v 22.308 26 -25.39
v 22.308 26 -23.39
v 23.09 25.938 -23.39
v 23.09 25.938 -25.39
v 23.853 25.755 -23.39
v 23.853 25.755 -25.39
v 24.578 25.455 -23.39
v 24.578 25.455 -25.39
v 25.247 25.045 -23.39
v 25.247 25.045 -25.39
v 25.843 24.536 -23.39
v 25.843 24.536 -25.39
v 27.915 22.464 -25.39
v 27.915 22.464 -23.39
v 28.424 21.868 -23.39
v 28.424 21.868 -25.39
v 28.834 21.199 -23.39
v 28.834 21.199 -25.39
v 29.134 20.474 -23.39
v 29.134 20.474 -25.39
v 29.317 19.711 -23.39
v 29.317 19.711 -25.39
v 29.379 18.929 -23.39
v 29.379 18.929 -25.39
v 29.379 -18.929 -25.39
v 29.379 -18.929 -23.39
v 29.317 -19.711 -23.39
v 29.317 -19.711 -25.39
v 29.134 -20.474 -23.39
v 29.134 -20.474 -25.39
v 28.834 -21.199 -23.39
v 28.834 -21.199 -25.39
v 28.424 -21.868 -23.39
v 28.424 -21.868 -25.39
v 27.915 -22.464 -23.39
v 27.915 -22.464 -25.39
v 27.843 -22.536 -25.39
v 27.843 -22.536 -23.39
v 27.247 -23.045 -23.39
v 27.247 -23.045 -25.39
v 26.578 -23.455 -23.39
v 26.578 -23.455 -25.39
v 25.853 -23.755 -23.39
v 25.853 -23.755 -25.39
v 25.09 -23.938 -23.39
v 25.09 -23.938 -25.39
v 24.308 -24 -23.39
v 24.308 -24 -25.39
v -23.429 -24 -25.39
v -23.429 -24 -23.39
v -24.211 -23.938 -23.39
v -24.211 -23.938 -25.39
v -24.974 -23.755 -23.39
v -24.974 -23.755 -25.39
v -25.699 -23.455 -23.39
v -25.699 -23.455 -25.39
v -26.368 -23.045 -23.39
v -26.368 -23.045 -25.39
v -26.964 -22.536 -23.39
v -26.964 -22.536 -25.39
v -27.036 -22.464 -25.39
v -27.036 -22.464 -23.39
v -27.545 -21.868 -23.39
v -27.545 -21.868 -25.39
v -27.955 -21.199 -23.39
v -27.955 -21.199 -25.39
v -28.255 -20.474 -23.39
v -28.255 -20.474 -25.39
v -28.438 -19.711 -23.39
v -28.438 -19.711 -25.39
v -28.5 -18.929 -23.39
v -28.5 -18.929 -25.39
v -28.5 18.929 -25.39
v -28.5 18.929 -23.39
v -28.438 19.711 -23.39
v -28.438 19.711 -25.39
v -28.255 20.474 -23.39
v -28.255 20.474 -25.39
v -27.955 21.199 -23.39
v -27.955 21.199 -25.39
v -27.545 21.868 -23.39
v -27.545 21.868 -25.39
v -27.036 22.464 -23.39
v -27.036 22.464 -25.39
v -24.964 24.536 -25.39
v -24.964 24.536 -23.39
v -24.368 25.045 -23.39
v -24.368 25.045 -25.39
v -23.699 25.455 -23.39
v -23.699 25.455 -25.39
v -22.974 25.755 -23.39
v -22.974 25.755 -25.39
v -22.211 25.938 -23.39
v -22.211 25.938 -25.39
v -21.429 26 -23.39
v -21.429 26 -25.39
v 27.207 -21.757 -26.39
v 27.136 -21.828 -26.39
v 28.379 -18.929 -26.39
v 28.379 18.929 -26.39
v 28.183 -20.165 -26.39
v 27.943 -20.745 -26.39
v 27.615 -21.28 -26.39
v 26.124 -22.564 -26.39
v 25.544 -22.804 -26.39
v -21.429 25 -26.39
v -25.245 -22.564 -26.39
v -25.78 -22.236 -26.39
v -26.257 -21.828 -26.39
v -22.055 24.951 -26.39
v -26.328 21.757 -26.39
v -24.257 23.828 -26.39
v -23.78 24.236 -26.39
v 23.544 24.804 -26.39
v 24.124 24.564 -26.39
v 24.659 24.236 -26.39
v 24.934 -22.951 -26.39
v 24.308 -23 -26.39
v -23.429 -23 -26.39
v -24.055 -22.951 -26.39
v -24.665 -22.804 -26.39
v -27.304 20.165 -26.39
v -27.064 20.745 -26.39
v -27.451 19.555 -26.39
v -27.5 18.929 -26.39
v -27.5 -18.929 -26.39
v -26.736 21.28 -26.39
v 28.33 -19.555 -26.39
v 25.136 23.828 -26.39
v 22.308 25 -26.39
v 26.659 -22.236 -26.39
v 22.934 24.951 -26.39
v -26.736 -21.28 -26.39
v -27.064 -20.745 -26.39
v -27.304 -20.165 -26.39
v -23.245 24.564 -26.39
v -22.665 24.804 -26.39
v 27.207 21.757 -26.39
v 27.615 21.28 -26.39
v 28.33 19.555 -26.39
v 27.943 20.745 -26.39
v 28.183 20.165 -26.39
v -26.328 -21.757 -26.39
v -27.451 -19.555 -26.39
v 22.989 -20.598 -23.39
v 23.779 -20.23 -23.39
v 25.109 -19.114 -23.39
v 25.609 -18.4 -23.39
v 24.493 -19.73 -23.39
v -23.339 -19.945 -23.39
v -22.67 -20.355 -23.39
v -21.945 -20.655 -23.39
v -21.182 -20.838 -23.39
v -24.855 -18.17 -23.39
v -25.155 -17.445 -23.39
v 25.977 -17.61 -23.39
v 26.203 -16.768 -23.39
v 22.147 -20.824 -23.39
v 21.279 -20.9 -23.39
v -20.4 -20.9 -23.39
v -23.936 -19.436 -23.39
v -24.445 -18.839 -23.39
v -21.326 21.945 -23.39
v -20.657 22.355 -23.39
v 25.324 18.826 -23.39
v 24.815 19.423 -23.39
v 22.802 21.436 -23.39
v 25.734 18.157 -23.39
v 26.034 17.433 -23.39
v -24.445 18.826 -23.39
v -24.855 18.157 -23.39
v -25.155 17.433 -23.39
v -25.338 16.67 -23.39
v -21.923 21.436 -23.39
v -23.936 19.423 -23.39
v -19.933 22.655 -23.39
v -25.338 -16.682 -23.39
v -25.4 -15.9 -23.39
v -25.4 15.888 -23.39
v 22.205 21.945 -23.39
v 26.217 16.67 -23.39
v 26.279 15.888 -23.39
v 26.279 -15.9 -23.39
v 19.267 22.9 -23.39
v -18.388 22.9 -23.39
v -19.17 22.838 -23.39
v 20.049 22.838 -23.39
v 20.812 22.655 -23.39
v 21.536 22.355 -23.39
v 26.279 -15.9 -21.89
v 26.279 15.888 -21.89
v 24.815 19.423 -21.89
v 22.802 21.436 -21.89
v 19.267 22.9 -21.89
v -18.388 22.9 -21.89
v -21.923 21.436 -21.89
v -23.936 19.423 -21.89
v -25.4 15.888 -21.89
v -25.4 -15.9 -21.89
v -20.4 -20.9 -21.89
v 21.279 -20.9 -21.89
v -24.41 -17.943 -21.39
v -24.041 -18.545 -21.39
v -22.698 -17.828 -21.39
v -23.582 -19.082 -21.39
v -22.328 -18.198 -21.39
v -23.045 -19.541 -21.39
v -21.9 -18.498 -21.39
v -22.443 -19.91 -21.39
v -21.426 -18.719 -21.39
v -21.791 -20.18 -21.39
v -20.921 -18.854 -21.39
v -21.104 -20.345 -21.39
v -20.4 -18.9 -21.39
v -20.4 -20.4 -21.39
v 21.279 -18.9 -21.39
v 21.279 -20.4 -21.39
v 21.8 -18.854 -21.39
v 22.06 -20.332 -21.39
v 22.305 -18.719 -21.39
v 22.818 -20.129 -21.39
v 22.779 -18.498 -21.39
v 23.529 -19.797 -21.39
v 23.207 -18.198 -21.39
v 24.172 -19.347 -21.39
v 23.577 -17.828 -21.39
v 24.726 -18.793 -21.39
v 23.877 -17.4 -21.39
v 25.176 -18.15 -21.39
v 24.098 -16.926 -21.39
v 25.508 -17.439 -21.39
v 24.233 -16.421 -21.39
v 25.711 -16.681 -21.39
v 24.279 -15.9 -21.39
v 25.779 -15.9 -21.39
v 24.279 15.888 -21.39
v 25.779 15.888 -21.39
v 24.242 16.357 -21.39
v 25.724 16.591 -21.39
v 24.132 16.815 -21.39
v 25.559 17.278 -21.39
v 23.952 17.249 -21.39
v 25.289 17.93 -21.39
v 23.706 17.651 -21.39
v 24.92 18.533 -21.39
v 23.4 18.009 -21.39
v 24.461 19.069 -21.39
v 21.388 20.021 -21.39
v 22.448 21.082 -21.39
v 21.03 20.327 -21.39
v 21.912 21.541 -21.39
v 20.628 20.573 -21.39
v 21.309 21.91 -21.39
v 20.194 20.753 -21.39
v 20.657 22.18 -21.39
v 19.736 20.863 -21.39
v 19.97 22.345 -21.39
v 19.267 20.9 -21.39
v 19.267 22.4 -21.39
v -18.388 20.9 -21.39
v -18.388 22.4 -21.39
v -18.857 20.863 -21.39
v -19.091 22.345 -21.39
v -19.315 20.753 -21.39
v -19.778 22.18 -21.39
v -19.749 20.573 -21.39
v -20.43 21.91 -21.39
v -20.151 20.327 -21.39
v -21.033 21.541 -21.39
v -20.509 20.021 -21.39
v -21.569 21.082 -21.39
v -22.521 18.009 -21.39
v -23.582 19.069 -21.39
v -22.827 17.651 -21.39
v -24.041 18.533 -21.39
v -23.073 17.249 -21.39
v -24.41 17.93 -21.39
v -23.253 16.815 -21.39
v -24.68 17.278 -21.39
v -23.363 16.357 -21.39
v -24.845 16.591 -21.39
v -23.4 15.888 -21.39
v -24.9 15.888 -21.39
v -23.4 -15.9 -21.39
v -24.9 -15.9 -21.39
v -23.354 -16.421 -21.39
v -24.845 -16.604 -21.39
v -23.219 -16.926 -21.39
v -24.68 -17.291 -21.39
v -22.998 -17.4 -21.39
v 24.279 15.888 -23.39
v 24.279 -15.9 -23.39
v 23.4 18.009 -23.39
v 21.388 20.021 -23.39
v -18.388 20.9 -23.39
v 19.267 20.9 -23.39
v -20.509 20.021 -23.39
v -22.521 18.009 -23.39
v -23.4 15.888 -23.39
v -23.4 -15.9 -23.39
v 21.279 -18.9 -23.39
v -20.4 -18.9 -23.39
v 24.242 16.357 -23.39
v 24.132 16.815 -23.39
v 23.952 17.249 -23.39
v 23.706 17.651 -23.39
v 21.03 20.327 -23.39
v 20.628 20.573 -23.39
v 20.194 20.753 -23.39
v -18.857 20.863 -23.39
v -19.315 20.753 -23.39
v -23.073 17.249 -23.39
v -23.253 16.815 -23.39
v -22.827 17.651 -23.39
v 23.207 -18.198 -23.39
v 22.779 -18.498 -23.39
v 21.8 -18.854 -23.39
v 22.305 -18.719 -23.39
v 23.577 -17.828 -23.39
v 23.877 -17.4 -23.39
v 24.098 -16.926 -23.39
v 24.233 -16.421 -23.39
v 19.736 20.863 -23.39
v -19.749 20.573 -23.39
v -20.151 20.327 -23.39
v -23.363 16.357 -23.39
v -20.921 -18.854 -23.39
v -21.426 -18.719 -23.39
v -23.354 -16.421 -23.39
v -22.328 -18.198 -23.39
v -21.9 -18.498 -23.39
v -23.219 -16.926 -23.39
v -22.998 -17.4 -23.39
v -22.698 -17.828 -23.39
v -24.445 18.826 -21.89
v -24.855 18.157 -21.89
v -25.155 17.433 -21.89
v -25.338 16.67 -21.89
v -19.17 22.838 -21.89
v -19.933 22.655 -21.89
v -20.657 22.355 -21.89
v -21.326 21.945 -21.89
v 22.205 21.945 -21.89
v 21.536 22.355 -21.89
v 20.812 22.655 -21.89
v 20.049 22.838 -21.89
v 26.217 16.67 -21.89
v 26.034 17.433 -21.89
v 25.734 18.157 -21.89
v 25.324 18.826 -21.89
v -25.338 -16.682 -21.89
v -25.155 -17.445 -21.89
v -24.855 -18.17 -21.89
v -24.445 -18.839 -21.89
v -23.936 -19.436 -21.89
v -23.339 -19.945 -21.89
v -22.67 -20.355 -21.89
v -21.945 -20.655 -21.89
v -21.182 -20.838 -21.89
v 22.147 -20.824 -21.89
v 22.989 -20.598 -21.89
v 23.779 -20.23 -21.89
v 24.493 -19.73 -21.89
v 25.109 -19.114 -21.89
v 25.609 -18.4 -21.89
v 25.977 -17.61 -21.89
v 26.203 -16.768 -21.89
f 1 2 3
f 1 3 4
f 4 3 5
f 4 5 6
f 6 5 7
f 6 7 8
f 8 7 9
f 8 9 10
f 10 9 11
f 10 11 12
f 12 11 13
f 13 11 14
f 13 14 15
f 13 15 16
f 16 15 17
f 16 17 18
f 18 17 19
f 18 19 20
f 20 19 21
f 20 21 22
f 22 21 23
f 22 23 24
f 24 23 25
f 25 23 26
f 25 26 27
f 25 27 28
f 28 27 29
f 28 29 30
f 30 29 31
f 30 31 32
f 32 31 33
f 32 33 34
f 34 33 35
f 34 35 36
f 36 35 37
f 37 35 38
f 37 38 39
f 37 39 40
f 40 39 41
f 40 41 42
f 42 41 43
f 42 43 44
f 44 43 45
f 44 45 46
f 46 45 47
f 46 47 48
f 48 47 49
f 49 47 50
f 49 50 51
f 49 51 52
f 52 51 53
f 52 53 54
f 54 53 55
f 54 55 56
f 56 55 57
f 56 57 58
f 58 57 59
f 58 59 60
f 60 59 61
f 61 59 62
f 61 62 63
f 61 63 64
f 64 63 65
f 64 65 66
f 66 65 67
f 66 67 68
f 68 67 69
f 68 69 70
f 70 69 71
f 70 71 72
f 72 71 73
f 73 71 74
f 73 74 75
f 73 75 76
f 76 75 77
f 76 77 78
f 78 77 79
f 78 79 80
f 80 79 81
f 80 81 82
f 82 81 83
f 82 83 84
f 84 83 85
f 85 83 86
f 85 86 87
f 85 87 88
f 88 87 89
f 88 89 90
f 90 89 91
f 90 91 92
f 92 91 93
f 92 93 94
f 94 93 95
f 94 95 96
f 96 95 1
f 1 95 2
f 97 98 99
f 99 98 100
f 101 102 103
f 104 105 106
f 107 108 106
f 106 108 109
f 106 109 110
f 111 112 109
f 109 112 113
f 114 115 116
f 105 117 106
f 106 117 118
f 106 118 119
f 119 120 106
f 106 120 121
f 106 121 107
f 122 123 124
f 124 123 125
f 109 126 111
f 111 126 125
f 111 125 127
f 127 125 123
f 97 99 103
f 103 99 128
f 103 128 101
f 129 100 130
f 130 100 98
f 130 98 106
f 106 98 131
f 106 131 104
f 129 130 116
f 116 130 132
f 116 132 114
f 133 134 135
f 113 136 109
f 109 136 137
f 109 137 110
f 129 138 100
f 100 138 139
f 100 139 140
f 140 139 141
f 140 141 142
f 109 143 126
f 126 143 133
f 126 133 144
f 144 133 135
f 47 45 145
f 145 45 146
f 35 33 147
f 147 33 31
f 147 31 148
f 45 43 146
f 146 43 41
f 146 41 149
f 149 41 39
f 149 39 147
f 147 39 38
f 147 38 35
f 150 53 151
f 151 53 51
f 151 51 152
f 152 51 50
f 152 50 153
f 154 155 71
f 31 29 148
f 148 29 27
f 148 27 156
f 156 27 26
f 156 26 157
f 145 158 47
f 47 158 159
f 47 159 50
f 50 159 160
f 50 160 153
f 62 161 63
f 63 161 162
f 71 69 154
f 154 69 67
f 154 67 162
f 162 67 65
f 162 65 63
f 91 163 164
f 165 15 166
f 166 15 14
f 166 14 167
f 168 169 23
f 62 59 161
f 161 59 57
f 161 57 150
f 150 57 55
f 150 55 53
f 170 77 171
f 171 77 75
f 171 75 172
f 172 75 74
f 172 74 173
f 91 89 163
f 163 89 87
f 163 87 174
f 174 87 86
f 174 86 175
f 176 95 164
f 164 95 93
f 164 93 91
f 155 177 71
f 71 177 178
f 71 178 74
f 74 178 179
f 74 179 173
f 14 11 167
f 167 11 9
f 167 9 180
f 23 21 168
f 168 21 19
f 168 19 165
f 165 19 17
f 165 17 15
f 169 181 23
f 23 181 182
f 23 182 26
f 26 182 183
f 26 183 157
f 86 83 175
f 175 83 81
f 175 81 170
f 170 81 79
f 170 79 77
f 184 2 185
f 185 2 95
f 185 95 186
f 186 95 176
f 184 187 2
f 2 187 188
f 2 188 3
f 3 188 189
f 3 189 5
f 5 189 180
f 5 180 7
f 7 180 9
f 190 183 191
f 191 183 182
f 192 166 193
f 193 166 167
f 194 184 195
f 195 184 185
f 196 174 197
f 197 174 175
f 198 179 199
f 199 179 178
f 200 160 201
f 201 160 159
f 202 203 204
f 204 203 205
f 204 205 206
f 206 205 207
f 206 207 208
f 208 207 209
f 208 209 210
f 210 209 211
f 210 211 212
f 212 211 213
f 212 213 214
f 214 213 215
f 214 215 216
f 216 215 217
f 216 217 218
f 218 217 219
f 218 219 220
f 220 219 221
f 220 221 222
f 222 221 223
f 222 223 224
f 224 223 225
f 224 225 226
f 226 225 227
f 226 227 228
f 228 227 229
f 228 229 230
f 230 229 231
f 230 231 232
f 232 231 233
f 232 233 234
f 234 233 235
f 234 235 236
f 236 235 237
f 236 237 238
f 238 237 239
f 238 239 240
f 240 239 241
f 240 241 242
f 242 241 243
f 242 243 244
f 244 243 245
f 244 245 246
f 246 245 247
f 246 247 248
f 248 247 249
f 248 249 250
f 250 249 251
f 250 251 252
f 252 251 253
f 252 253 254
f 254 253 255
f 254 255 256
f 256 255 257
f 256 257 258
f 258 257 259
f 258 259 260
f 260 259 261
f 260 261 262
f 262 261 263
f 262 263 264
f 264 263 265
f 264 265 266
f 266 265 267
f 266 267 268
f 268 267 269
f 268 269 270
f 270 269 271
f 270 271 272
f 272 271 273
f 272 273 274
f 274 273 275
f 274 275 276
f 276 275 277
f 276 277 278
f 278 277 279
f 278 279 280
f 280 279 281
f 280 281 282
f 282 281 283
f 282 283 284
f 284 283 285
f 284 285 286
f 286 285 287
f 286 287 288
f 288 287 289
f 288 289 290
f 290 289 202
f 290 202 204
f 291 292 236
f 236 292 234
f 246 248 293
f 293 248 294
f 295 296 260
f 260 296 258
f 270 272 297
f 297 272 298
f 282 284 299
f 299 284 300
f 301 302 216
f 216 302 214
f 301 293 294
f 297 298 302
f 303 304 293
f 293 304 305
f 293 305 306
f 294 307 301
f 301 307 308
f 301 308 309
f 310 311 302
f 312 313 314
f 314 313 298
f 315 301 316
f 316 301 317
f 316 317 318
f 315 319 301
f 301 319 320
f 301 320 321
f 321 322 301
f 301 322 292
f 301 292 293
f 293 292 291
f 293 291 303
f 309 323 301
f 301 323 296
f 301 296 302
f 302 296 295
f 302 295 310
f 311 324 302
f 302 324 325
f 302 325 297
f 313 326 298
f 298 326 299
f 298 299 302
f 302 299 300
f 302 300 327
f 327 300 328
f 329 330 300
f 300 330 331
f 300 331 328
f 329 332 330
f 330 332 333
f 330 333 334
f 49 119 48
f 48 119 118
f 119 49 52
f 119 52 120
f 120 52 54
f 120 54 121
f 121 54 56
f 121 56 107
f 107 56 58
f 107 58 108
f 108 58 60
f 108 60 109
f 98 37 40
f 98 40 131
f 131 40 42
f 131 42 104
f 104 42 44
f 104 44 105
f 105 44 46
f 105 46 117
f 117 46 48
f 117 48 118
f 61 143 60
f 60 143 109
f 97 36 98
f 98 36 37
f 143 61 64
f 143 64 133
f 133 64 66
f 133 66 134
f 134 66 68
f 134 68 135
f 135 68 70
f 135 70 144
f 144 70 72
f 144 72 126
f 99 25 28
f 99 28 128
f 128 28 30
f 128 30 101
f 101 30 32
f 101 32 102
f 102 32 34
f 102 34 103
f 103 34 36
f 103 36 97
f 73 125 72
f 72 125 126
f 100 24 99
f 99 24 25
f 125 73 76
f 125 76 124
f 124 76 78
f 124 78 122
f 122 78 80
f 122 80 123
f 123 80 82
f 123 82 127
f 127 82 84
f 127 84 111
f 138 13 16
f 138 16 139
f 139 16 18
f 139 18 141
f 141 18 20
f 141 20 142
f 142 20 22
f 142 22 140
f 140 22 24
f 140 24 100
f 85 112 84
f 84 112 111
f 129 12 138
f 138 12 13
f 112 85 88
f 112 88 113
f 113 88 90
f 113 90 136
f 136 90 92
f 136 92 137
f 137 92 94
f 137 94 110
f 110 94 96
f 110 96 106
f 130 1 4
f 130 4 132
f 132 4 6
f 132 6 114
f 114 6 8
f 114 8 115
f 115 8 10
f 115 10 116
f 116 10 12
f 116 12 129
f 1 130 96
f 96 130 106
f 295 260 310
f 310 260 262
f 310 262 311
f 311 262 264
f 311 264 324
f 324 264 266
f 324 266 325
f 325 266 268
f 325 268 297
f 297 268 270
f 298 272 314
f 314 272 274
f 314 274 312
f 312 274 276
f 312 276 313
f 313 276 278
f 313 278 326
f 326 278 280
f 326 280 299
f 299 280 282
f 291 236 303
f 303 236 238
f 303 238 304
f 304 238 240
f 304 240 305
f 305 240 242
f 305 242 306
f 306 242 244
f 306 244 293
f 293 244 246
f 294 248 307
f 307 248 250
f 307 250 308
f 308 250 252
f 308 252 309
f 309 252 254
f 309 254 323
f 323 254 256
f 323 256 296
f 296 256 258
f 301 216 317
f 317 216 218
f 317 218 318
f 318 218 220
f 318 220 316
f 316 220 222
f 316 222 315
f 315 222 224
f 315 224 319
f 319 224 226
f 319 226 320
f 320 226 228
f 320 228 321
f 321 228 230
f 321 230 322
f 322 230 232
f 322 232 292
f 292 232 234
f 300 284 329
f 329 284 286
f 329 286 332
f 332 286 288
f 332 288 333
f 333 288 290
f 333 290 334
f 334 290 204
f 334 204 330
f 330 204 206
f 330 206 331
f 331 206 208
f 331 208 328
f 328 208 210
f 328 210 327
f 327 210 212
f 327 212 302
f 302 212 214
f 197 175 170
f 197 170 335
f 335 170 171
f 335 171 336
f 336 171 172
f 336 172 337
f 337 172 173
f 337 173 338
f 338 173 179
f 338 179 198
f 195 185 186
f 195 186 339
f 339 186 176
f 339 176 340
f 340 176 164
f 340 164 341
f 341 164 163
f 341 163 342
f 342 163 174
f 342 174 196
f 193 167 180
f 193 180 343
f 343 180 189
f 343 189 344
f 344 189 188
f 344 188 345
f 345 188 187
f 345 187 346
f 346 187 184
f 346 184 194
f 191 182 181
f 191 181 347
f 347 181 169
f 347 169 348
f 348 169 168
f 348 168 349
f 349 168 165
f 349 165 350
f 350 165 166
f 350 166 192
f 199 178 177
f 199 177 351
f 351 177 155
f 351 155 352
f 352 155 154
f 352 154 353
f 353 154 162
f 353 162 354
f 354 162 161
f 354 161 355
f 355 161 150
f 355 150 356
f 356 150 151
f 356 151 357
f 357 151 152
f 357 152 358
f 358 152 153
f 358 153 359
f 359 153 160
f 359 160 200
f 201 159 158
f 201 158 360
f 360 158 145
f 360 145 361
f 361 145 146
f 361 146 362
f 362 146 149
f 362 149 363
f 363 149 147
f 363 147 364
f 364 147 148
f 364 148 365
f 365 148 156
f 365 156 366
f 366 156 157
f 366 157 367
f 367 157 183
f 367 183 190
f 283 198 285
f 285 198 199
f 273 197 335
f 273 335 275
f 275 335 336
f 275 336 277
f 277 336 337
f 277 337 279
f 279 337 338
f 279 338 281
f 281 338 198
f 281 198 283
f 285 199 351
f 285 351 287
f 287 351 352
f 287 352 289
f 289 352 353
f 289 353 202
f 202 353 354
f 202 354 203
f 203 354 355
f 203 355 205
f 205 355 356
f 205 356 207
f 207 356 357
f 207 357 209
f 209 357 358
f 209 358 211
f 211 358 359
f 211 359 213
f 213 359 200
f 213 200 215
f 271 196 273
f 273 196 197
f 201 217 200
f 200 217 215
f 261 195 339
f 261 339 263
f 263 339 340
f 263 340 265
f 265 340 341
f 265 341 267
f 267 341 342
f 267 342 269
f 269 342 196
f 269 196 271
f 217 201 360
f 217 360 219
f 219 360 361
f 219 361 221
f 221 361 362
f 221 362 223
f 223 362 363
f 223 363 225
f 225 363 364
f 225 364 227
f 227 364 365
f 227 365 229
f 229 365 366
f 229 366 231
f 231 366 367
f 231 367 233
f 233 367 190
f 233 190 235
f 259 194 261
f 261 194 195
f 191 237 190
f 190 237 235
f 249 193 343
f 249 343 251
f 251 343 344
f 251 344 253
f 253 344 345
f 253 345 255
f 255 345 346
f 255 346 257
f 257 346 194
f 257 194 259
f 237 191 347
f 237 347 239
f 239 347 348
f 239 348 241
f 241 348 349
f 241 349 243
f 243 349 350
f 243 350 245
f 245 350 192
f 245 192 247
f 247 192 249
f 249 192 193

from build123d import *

# Parameters (mm, degrees)
BOSS_EXTRUDE1_DEPTH = 3
BOSS_EXTRUDE2_DEPTH = 2
CHAMFER1_SIZE       = 1
FILLET1_R           = 3
FILLET2_R           = 5
CHAMFER2_SIZE       = 0.5


with BuildPart() as part:
    # Sketch2 → Boss-Extrude1 (new body)
    with BuildSketch(Plane(origin=(0, 0, -23.390463949), x_dir=(-1, 0, 0), z_dir=(0, 0, -1))):
        with BuildLine():
            Line((21.428932188, 26), (-22.307932188, 26))
            ThreePointArc((-22.307932188, 26), (-24.22134935, 25.619397663), (-25.843466094, 24.535533906))
            Line((-25.843466094, 24.535533906), (-27.914533906, 22.464466094))
            ThreePointArc((-27.914533906, 22.464466094), (-28.998397663, 20.84234935), (-29.379, 18.928932188))
            Line((-29.379, 18.928932188), (-29.379, -18.928932188))
            ThreePointArc((-29.379, -18.928932188), (-28.998397663, -20.84234935), (-27.914533906, -22.464466094))
            Line((-27.914533906, -22.464466094), (-27.843466094, -22.535533906))
            ThreePointArc((-27.843466094, -22.535533906), (-26.22134935, -23.619397663), (-24.307932188, -24))
            Line((-24.307932188, -24), (23.428932188, -24))
            ThreePointArc((23.428932188, -24), (25.34234935, -23.619397663), (26.964466094, -22.535533906))
            Line((26.964466094, -22.535533906), (27.035533906, -22.464466094))
            ThreePointArc((27.035533906, -22.464466094), (28.119397663, -20.84234935), (28.5, -18.928932188))
            Line((28.5, -18.928932188), (28.5, 18.928932188))
            ThreePointArc((28.5, 18.928932188), (28.119397663, 20.84234935), (27.035533906, 22.464466094))
            Line((27.035533906, 22.464466094), (24.964466094, 24.535533906))
            ThreePointArc((24.964466094, 24.535533906), (23.34234935, 25.619397663), (21.428932188, 26))
        make_face()
    extrude(amount=BOSS_EXTRUDE1_DEPTH)

    # Sketch3 → Boss-Extrude2 (add)
    with BuildSketch(Plane(origin=(0, 0, -23.390463949), x_dir=(-1, 0, 0), z_dir=(0, 0, -1))):
        Polygon((-26.279, -20.9), (25.4, -20.9), (25.4, 17.958578644), (20.458578644, 22.9), (-21.337578644, 22.9), (-26.279, 17.958578644), align=None)
        Polygon((-24.279, -18.9), (23.4, -18.9), (23.4, 17.130151519), (19.630151519, 20.9), (-20.509151519, 20.9), (-24.279, 17.130151519), align=None, mode=Mode.SUBTRACT)
    extrude(amount=-BOSS_EXTRUDE2_DEPTH)

    # Chamfer1
    chamfer1_edges = [part.edges().sort_by_distance(p)[0] for p in [
        (28.998397663, 20.84234935, -26.390463949),
        (29.379, 0, -26.390463949),
        (28.998397663, -20.84234935, -26.390463949),
        (27.879, -22.5, -26.390463949),
        (26.22134935, -23.619397663, -26.390463949),
        (0.4395, -24, -26.390463949),
        (-25.34234935, -23.619397663, -26.390463949),
        (-27, -22.5, -26.390463949),
        (-28.119397663, -20.84234935, -26.390463949),
        (-28.5, 0, -26.390463949),
        (24.22134935, 25.619397663, -26.390463949),
        (-28.119397663, 20.84234935, -26.390463949),
        (-26, 23.5, -26.390463949),
        (-23.34234935, 25.619397663, -26.390463949),
        (0.4395, 26, -26.390463949),
        (26.879, 23.5, -26.390463949),
    ]]
    chamfer(chamfer1_edges, length=CHAMFER1_SIZE)

    # Fillet1
    fillet1_edges = [part.edges().sort_by_distance(p)[0] for p in [
        (24.279, 17.130151519, -22.390463949),
        (20.509151519, 20.9, -22.390463949),
        (-19.630151519, 20.9, -22.390463949),
        (-23.4, 17.130151519, -22.390463949),
        (-23.4, -18.9, -22.390463949),
        (24.279, -18.9, -22.390463949),
    ]]
    fillet(fillet1_edges, radius=FILLET1_R)

    # Fillet2
    fillet2_edges = [part.edges().sort_by_distance(p)[0] for p in [
        (26.279, -20.9, -22.390463949),
        (26.279, 17.958578644, -22.390463949),
        (21.337578644, 22.9, -22.390463949),
        (-20.458578644, 22.9, -22.390463949),
        (-25.4, 17.958578644, -22.390463949),
        (-25.4, -20.9, -22.390463949),
    ]]
    fillet(fillet2_edges, radius=FILLET2_R)

    # Chamfer2
    chamfer2_edges = [part.edges().sort_by_distance(p)[0] for p in [
        (-25.4, -0.006244584, -21.390463949),
        (-22.929289322, 20.429289322, -21.390463949),
        (26.279, -0.006244584, -21.390463949),
        (23.808289322, 20.429289322, -21.390463949),
        (0.4395, 22.9, -21.390463949),
        (0.4395, -20.9, -21.390463949),
        (24.814533906, -19.435533906, -21.390463949),
        (-23.935533906, -19.435533906, -21.390463949),
        (25.898397663, 17.800927994, -21.390463949),
        (21.179927994, 22.519397663, -21.390463949),
        (-20.300927994, 22.519397663, -21.390463949),
        (-25.019397663, 17.800927994, -21.390463949),
    ]]
    chamfer(chamfer2_edges, length=CHAMFER2_SIZE)


solid = part.part
